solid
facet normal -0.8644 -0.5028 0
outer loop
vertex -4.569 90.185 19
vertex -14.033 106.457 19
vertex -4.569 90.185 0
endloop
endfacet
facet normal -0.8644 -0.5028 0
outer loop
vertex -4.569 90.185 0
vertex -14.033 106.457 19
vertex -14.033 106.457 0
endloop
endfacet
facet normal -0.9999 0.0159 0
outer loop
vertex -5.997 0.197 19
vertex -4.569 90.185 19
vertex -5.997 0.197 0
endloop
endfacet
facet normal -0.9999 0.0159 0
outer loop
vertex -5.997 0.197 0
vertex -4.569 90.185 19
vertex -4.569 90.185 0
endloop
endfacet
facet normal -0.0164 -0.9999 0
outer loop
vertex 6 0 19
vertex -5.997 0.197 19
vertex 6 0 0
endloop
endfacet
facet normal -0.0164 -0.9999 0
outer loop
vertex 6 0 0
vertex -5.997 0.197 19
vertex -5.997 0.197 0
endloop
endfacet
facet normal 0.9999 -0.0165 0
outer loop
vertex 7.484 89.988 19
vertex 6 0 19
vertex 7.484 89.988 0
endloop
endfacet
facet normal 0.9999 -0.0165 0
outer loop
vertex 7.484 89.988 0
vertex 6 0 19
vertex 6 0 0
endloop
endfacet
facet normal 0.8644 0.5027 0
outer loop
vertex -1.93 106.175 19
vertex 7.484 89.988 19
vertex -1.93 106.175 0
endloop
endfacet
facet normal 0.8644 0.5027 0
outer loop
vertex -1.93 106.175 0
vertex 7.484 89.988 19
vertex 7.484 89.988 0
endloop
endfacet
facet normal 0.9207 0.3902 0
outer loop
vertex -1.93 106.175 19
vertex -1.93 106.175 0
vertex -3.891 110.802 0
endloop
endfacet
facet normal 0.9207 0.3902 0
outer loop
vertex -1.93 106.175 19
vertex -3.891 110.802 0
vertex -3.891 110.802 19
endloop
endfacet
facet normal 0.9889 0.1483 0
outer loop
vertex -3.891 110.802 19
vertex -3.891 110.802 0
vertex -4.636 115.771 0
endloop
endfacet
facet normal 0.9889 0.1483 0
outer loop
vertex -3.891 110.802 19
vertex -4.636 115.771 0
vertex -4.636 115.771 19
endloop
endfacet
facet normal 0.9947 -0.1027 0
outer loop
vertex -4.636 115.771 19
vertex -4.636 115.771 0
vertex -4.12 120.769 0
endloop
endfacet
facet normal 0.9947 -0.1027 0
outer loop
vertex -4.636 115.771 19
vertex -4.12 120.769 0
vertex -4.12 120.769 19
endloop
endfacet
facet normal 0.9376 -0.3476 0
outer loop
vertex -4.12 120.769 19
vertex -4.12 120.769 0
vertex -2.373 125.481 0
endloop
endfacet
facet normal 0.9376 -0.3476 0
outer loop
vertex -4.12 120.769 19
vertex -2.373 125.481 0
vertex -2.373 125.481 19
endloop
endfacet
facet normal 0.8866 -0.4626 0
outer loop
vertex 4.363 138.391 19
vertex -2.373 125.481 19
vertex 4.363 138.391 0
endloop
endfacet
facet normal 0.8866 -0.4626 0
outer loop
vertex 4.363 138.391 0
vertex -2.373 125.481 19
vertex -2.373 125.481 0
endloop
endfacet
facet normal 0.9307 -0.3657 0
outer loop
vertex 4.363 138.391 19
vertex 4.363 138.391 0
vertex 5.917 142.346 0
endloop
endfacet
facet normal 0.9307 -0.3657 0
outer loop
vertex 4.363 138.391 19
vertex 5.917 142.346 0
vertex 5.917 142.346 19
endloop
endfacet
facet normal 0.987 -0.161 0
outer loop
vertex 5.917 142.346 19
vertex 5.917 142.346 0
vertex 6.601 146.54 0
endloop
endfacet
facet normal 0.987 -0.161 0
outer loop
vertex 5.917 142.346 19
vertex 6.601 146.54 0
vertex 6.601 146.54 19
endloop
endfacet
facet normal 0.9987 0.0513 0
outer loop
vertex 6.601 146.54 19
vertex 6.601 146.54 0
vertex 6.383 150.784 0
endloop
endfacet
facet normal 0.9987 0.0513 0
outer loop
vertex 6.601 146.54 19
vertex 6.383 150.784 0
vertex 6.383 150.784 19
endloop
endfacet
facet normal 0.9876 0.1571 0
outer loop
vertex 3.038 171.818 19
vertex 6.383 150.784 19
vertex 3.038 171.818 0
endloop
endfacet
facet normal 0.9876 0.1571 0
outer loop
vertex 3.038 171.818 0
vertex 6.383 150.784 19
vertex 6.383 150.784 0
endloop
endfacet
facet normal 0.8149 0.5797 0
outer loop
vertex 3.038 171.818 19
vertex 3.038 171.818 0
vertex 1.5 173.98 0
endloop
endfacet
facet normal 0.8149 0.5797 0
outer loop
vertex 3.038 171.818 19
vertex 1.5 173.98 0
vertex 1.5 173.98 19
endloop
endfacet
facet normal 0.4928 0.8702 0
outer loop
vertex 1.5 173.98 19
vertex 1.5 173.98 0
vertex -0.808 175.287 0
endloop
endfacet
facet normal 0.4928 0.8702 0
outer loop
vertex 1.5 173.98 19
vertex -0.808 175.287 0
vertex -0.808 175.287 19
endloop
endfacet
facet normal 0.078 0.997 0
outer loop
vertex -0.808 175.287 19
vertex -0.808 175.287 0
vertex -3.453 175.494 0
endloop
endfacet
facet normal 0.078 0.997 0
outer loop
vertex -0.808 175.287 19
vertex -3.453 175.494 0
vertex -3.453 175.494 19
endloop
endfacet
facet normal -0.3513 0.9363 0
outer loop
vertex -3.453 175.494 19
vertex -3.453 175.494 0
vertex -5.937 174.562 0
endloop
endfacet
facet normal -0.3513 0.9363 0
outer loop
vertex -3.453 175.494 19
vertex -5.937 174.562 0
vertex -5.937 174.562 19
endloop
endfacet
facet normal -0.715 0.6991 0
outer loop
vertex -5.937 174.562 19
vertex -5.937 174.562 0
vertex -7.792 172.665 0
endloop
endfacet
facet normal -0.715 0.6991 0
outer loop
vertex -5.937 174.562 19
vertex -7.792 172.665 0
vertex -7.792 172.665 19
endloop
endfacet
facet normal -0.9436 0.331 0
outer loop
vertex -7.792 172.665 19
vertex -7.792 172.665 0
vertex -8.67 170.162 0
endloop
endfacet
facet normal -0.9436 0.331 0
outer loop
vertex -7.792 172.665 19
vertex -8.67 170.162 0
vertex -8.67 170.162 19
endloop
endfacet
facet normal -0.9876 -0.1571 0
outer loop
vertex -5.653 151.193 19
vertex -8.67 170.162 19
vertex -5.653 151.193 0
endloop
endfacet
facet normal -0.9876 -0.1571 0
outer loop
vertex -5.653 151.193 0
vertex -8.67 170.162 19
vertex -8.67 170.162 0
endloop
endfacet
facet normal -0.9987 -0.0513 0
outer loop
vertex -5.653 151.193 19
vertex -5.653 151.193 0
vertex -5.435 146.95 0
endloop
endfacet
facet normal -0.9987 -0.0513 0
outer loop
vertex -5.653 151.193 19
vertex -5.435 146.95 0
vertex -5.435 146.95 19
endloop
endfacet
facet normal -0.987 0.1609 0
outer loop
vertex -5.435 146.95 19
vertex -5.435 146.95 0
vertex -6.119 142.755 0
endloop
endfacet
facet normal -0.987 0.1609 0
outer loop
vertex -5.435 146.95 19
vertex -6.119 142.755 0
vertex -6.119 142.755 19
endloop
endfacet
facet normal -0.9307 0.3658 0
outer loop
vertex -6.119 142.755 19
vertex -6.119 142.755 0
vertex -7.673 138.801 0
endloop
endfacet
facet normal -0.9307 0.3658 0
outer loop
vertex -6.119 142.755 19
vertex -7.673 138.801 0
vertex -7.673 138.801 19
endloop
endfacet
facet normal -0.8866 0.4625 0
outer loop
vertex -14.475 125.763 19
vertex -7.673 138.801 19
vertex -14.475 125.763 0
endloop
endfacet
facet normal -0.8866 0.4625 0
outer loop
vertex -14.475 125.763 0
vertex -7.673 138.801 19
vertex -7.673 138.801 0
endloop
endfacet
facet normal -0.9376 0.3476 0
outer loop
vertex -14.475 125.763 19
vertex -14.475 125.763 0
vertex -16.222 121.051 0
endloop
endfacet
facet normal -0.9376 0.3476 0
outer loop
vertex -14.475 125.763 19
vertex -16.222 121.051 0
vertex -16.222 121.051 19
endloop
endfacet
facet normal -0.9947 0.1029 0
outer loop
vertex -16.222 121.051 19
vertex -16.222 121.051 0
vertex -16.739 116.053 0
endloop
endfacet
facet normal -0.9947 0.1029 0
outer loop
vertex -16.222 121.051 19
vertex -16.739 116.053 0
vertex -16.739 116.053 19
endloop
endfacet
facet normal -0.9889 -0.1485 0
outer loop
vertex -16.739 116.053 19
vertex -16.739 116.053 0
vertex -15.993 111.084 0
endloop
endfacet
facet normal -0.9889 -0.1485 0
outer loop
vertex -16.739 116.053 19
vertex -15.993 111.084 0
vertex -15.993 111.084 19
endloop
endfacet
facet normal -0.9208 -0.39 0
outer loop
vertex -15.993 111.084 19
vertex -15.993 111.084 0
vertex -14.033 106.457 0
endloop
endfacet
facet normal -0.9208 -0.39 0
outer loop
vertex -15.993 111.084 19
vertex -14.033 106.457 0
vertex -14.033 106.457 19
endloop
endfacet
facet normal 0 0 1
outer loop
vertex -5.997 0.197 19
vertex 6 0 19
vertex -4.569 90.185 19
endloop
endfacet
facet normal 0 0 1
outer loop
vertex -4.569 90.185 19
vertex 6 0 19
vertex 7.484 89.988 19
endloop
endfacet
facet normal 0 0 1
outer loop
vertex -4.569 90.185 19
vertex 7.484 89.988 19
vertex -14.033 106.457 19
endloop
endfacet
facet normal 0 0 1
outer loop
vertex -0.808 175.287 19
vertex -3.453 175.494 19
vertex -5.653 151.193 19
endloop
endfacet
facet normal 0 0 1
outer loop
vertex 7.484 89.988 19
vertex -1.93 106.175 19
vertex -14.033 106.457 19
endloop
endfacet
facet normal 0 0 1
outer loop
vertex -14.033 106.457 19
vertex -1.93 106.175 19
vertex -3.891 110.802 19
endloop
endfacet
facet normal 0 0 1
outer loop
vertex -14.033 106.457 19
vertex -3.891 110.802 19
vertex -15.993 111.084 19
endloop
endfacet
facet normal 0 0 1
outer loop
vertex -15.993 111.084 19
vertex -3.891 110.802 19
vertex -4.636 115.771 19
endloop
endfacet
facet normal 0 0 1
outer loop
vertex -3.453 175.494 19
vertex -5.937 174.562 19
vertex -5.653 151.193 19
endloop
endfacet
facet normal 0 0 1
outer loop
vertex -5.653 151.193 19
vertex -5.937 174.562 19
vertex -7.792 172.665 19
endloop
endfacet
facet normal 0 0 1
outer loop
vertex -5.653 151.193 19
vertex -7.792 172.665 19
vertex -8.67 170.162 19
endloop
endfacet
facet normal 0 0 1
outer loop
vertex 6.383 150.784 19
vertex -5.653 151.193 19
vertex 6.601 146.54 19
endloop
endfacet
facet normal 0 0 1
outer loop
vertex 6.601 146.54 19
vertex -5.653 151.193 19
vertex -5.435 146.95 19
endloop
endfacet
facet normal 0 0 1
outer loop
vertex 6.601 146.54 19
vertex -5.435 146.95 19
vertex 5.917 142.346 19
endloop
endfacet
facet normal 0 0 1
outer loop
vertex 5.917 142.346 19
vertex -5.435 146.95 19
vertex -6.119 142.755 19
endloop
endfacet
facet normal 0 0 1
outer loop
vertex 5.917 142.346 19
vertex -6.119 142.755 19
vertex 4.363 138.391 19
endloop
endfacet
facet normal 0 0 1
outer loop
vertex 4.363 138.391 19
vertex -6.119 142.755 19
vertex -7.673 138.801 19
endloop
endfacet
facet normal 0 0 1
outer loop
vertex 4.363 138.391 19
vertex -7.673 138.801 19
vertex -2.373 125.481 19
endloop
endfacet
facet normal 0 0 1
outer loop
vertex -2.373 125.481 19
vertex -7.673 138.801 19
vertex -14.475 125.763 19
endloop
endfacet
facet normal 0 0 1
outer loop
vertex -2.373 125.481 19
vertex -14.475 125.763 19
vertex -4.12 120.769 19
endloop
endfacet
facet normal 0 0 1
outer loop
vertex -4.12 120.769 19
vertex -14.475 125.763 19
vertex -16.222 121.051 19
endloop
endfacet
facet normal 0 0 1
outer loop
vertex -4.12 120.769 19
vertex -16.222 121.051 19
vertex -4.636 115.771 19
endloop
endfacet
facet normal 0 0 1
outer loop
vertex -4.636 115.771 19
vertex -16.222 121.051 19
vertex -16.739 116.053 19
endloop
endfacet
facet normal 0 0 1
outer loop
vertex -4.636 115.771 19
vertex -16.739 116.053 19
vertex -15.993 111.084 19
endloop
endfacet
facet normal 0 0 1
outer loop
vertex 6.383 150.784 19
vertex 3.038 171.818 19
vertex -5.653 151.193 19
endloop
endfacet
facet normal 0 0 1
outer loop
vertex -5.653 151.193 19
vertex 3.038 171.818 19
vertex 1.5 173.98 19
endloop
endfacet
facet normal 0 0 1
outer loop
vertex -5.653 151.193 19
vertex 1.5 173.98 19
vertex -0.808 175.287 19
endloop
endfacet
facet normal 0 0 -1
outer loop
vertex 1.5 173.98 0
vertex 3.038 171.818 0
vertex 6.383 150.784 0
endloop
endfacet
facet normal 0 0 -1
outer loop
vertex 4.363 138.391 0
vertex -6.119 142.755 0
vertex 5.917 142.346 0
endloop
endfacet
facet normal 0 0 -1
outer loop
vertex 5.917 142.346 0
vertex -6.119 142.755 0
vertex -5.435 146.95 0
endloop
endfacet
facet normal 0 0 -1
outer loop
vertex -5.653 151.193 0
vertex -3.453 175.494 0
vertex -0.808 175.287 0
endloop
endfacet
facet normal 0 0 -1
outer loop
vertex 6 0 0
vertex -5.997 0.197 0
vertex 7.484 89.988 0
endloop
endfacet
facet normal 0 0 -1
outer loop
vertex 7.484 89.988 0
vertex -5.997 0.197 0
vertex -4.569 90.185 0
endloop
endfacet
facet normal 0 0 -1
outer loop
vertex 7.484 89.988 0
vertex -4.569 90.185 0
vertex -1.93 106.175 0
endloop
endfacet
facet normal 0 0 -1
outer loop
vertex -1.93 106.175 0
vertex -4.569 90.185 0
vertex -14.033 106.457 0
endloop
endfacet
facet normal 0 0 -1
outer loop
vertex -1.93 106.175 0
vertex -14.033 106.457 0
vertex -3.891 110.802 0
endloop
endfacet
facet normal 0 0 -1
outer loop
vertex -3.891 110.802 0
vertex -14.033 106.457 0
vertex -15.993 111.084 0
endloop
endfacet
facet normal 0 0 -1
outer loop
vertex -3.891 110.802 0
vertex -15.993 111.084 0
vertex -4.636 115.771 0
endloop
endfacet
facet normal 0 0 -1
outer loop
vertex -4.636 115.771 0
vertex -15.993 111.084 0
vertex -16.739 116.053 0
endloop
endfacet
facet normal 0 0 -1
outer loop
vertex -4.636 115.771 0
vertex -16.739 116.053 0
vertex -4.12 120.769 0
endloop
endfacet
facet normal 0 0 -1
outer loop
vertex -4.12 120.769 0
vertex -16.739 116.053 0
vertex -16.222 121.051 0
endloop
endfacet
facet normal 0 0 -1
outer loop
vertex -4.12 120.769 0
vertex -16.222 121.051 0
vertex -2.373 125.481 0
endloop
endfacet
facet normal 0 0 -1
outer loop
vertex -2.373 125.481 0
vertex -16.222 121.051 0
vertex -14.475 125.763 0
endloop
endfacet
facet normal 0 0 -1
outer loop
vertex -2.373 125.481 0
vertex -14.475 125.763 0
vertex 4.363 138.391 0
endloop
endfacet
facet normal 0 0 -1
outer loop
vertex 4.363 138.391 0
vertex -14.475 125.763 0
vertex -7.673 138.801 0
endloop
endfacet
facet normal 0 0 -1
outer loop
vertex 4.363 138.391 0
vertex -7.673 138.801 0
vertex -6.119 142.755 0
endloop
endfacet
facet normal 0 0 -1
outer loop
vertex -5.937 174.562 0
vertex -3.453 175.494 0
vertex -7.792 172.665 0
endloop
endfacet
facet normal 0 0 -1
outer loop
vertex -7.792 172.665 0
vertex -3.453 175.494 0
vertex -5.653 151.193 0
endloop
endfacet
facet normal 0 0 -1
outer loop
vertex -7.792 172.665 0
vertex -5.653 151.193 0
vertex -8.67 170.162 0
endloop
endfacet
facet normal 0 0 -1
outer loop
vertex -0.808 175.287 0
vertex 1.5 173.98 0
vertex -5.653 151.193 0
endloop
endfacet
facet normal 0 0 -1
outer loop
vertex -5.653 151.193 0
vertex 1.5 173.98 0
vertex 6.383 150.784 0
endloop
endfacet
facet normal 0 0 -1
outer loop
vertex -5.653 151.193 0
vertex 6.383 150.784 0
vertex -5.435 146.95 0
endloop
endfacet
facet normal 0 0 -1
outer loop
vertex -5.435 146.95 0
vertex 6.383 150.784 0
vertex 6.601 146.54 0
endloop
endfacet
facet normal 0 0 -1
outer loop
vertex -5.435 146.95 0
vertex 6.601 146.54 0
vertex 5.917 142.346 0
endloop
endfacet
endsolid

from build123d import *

# Parameters (mm, degrees)
EXTRUDE_1_DEPTH = 19


with BuildPart() as part:
    # Эскиз1 → Вытянуть1 (new body)
    with BuildSketch(Plane.XY):
        with BuildLine():
            Line((-5.996779713, 0.196552972), (-4.569380805, 90.185232995))
            Line((-4.569380805, 90.185232995), (-14.032554186, 106.456860521))
            ThreePointArc((-14.032554186, 106.456860521), (-16.738501903, 116.052970381), (-14.475382715, 125.763056325))
            Line((-14.475382715, 125.763056325), (-7.67310326, 138.800500371))
            ThreePointArc((-7.67310326, 138.800500371), (-5.665255915, 144.834300954), (-5.652980092, 151.193392849))
            Line((-5.652980092, 151.193392849), (-8.669783562, 170.161558564))
            ThreePointArc((-8.669783562, 170.161558564), (-3.453313414, 175.494197645), (3.037538011, 171.817589403))
            Line((3.037538011, 171.817589403), (6.382811975, 150.78416394))
            ThreePointArc((6.382811975, 150.78416394), (6.370536152, 144.425072045), (4.362688807, 138.391271463))
            Line((4.362688807, 138.391271463), (-2.373176384, 125.481118902))
            ThreePointArc((-2.373176384, 125.481118902), (-4.636295572, 115.771032958), (-1.930347854, 106.174923097))
            Line((-1.930347854, 106.174923097), (7.483697652, 89.987769398))
            Line((7.483697652, 89.987769398), (6, 0))
            Line((6, 0), (-5.996779713, 0.196552972))
        make_face()
    extrude(amount=EXTRUDE_1_DEPTH)


solid = part.part
